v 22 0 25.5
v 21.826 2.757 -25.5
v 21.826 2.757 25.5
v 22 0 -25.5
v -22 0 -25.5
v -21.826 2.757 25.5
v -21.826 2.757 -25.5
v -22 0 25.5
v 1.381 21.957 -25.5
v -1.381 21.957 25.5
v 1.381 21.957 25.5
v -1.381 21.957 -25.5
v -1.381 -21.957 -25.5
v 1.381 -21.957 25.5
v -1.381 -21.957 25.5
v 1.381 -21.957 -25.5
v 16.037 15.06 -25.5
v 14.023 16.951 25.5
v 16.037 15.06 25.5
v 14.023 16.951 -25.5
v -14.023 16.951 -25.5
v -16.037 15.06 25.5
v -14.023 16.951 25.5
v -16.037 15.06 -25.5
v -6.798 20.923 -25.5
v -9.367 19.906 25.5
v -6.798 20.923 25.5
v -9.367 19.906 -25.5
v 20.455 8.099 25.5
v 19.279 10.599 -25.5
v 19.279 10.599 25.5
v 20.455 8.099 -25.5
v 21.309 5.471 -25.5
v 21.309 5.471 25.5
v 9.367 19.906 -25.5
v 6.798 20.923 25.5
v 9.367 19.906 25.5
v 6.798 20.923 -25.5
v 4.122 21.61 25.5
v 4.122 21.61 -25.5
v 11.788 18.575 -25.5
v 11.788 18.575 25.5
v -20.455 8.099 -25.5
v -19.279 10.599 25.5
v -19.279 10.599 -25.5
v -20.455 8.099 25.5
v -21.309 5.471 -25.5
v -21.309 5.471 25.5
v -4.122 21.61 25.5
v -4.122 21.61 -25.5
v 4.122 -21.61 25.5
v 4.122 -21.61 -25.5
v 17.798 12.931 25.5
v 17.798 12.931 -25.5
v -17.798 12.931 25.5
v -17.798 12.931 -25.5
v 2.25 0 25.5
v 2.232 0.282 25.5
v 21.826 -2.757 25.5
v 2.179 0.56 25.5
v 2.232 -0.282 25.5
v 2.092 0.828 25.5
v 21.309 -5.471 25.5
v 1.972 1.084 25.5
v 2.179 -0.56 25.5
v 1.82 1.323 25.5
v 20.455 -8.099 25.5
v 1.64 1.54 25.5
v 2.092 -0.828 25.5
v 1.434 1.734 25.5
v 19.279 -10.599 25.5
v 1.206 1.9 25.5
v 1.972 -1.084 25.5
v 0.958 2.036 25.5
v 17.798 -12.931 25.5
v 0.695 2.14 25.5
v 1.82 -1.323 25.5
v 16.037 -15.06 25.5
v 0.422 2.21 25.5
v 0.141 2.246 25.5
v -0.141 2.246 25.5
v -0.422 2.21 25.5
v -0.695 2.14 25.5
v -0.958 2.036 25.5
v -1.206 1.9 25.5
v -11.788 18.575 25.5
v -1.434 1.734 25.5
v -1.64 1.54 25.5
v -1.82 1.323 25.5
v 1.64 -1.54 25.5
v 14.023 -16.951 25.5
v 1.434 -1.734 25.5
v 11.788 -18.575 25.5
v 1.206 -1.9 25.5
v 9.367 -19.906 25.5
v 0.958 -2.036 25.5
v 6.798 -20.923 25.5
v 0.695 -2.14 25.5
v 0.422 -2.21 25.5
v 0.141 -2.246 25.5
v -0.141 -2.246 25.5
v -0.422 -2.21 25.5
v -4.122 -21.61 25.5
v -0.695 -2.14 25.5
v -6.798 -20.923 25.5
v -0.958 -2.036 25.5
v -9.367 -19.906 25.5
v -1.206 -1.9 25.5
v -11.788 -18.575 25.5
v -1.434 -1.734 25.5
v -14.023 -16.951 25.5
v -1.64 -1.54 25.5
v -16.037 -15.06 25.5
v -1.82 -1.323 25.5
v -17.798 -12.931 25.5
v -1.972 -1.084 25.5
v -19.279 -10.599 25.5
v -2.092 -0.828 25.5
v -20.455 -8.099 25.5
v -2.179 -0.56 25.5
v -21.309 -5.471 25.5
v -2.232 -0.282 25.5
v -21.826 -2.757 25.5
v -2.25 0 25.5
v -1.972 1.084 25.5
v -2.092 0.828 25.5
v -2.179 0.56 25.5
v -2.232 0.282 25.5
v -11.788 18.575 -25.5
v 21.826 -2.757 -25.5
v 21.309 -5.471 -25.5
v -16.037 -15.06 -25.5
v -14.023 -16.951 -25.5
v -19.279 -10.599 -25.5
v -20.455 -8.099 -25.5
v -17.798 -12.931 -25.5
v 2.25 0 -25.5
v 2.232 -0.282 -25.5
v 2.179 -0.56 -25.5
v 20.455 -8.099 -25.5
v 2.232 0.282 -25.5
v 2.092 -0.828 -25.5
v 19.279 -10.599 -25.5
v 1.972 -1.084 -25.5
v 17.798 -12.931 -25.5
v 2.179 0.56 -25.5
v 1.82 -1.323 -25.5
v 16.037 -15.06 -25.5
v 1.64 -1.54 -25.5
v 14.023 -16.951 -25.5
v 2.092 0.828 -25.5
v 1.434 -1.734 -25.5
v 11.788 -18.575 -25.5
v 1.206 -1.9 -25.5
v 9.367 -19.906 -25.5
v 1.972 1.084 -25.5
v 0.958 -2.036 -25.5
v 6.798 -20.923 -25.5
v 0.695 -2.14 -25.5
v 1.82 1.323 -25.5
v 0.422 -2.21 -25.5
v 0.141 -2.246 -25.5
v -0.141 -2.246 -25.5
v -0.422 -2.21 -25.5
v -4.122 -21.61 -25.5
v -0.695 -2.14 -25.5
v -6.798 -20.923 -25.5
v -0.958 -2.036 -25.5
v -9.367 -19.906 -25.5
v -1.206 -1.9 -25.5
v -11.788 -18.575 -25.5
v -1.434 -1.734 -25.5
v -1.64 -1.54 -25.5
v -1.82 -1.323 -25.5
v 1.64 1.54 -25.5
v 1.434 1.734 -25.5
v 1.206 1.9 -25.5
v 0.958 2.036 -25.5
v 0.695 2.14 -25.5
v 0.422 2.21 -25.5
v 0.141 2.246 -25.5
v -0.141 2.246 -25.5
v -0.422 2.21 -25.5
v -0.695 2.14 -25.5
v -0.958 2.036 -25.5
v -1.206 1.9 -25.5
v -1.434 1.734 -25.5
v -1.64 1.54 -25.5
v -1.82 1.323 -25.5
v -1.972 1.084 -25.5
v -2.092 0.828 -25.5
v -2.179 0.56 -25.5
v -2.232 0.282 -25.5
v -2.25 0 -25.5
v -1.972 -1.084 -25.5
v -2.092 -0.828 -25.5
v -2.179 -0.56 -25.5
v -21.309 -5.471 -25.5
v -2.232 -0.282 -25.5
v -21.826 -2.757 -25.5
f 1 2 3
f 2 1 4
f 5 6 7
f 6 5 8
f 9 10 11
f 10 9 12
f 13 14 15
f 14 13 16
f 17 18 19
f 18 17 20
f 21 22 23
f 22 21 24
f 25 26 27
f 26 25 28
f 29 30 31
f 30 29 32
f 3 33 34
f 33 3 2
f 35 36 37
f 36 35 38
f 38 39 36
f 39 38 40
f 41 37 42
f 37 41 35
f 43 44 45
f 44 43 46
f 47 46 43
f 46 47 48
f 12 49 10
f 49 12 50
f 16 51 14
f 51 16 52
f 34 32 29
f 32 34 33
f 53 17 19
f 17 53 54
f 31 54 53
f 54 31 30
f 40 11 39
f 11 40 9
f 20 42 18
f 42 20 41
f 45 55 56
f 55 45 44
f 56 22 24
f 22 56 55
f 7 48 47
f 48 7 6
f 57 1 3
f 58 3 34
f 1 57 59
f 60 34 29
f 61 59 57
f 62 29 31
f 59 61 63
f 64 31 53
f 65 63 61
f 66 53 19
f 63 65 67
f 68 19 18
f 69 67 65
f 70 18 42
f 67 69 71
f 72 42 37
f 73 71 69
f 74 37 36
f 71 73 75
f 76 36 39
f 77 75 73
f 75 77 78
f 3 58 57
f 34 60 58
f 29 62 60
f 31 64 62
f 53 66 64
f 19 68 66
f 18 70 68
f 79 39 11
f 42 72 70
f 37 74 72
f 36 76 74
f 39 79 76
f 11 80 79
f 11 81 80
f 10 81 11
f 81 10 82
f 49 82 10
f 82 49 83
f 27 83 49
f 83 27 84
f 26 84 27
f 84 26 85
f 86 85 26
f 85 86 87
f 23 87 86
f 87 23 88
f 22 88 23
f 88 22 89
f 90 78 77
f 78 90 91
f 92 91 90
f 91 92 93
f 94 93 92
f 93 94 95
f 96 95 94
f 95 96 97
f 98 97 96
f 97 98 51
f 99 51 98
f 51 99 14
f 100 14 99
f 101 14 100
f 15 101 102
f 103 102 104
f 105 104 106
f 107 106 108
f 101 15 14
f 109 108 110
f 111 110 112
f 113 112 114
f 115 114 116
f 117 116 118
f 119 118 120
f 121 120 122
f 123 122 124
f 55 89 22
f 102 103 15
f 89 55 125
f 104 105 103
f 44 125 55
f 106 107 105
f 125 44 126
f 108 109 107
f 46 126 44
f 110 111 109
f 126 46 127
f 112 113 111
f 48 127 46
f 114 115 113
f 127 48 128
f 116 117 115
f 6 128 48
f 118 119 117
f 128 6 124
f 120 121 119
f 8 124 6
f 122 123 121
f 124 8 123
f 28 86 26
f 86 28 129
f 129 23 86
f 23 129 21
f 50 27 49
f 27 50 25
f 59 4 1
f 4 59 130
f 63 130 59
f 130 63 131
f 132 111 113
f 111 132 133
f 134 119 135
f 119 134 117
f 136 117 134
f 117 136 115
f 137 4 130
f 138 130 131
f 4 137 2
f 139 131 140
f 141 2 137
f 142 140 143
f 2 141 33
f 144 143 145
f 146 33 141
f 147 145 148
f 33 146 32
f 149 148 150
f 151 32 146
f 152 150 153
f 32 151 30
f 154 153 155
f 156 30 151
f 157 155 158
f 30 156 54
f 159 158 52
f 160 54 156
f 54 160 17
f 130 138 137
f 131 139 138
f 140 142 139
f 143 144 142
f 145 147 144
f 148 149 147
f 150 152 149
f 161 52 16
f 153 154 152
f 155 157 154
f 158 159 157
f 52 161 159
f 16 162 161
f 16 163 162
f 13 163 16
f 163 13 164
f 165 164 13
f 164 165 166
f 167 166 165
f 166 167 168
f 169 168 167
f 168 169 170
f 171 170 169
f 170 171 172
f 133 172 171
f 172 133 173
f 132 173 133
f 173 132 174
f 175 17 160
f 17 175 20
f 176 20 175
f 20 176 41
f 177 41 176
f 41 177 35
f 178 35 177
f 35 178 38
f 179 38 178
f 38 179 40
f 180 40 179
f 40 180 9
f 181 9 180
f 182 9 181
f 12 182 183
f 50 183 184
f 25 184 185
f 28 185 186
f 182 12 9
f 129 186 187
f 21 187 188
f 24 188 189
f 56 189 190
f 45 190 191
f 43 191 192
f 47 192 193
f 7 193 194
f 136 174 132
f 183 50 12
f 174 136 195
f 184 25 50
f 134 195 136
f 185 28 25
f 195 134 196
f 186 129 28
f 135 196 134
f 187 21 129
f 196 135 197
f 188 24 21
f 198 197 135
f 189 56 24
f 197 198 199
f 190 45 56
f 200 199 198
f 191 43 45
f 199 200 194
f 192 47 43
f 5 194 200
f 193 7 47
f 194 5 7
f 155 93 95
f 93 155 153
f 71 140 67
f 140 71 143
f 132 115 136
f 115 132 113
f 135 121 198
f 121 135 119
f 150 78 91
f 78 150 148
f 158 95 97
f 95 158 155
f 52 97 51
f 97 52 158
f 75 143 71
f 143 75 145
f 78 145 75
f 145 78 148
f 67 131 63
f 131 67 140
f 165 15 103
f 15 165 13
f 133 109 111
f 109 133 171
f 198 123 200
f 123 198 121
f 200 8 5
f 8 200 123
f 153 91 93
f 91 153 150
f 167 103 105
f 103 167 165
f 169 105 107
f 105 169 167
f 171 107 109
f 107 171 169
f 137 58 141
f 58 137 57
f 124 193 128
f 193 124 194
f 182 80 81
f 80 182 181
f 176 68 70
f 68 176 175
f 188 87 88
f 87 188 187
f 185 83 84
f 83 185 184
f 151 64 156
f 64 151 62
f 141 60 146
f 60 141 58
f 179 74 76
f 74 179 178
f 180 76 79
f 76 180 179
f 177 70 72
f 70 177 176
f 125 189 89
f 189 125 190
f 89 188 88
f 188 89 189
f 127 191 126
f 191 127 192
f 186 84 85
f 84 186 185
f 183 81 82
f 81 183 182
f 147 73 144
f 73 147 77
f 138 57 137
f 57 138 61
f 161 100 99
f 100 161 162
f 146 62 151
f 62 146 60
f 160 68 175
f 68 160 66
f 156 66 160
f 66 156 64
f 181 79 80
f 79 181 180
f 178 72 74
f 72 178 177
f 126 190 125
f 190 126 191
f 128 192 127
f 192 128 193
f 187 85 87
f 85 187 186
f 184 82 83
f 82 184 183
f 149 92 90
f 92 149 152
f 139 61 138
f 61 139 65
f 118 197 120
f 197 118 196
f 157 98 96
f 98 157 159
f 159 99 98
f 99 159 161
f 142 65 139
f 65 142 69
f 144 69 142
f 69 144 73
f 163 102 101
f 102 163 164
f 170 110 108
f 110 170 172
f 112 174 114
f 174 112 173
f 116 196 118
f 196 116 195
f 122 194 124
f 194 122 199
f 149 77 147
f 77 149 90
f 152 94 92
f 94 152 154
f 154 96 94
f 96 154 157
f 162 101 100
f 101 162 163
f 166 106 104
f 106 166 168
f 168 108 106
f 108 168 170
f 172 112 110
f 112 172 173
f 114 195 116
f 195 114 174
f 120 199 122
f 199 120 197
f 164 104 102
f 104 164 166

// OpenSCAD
$fn = 50;


difference() {
	union() {
		translate(v = [0, 0, -25.5000000000]) {
			cylinder(h = 51, r = 22.0000000000);
		}
	}
	union() {
		translate(v = [0, 0, -100.0000000000]) {
			cylinder(h = 200, r = 2.2500000000);
		}
	}
}
